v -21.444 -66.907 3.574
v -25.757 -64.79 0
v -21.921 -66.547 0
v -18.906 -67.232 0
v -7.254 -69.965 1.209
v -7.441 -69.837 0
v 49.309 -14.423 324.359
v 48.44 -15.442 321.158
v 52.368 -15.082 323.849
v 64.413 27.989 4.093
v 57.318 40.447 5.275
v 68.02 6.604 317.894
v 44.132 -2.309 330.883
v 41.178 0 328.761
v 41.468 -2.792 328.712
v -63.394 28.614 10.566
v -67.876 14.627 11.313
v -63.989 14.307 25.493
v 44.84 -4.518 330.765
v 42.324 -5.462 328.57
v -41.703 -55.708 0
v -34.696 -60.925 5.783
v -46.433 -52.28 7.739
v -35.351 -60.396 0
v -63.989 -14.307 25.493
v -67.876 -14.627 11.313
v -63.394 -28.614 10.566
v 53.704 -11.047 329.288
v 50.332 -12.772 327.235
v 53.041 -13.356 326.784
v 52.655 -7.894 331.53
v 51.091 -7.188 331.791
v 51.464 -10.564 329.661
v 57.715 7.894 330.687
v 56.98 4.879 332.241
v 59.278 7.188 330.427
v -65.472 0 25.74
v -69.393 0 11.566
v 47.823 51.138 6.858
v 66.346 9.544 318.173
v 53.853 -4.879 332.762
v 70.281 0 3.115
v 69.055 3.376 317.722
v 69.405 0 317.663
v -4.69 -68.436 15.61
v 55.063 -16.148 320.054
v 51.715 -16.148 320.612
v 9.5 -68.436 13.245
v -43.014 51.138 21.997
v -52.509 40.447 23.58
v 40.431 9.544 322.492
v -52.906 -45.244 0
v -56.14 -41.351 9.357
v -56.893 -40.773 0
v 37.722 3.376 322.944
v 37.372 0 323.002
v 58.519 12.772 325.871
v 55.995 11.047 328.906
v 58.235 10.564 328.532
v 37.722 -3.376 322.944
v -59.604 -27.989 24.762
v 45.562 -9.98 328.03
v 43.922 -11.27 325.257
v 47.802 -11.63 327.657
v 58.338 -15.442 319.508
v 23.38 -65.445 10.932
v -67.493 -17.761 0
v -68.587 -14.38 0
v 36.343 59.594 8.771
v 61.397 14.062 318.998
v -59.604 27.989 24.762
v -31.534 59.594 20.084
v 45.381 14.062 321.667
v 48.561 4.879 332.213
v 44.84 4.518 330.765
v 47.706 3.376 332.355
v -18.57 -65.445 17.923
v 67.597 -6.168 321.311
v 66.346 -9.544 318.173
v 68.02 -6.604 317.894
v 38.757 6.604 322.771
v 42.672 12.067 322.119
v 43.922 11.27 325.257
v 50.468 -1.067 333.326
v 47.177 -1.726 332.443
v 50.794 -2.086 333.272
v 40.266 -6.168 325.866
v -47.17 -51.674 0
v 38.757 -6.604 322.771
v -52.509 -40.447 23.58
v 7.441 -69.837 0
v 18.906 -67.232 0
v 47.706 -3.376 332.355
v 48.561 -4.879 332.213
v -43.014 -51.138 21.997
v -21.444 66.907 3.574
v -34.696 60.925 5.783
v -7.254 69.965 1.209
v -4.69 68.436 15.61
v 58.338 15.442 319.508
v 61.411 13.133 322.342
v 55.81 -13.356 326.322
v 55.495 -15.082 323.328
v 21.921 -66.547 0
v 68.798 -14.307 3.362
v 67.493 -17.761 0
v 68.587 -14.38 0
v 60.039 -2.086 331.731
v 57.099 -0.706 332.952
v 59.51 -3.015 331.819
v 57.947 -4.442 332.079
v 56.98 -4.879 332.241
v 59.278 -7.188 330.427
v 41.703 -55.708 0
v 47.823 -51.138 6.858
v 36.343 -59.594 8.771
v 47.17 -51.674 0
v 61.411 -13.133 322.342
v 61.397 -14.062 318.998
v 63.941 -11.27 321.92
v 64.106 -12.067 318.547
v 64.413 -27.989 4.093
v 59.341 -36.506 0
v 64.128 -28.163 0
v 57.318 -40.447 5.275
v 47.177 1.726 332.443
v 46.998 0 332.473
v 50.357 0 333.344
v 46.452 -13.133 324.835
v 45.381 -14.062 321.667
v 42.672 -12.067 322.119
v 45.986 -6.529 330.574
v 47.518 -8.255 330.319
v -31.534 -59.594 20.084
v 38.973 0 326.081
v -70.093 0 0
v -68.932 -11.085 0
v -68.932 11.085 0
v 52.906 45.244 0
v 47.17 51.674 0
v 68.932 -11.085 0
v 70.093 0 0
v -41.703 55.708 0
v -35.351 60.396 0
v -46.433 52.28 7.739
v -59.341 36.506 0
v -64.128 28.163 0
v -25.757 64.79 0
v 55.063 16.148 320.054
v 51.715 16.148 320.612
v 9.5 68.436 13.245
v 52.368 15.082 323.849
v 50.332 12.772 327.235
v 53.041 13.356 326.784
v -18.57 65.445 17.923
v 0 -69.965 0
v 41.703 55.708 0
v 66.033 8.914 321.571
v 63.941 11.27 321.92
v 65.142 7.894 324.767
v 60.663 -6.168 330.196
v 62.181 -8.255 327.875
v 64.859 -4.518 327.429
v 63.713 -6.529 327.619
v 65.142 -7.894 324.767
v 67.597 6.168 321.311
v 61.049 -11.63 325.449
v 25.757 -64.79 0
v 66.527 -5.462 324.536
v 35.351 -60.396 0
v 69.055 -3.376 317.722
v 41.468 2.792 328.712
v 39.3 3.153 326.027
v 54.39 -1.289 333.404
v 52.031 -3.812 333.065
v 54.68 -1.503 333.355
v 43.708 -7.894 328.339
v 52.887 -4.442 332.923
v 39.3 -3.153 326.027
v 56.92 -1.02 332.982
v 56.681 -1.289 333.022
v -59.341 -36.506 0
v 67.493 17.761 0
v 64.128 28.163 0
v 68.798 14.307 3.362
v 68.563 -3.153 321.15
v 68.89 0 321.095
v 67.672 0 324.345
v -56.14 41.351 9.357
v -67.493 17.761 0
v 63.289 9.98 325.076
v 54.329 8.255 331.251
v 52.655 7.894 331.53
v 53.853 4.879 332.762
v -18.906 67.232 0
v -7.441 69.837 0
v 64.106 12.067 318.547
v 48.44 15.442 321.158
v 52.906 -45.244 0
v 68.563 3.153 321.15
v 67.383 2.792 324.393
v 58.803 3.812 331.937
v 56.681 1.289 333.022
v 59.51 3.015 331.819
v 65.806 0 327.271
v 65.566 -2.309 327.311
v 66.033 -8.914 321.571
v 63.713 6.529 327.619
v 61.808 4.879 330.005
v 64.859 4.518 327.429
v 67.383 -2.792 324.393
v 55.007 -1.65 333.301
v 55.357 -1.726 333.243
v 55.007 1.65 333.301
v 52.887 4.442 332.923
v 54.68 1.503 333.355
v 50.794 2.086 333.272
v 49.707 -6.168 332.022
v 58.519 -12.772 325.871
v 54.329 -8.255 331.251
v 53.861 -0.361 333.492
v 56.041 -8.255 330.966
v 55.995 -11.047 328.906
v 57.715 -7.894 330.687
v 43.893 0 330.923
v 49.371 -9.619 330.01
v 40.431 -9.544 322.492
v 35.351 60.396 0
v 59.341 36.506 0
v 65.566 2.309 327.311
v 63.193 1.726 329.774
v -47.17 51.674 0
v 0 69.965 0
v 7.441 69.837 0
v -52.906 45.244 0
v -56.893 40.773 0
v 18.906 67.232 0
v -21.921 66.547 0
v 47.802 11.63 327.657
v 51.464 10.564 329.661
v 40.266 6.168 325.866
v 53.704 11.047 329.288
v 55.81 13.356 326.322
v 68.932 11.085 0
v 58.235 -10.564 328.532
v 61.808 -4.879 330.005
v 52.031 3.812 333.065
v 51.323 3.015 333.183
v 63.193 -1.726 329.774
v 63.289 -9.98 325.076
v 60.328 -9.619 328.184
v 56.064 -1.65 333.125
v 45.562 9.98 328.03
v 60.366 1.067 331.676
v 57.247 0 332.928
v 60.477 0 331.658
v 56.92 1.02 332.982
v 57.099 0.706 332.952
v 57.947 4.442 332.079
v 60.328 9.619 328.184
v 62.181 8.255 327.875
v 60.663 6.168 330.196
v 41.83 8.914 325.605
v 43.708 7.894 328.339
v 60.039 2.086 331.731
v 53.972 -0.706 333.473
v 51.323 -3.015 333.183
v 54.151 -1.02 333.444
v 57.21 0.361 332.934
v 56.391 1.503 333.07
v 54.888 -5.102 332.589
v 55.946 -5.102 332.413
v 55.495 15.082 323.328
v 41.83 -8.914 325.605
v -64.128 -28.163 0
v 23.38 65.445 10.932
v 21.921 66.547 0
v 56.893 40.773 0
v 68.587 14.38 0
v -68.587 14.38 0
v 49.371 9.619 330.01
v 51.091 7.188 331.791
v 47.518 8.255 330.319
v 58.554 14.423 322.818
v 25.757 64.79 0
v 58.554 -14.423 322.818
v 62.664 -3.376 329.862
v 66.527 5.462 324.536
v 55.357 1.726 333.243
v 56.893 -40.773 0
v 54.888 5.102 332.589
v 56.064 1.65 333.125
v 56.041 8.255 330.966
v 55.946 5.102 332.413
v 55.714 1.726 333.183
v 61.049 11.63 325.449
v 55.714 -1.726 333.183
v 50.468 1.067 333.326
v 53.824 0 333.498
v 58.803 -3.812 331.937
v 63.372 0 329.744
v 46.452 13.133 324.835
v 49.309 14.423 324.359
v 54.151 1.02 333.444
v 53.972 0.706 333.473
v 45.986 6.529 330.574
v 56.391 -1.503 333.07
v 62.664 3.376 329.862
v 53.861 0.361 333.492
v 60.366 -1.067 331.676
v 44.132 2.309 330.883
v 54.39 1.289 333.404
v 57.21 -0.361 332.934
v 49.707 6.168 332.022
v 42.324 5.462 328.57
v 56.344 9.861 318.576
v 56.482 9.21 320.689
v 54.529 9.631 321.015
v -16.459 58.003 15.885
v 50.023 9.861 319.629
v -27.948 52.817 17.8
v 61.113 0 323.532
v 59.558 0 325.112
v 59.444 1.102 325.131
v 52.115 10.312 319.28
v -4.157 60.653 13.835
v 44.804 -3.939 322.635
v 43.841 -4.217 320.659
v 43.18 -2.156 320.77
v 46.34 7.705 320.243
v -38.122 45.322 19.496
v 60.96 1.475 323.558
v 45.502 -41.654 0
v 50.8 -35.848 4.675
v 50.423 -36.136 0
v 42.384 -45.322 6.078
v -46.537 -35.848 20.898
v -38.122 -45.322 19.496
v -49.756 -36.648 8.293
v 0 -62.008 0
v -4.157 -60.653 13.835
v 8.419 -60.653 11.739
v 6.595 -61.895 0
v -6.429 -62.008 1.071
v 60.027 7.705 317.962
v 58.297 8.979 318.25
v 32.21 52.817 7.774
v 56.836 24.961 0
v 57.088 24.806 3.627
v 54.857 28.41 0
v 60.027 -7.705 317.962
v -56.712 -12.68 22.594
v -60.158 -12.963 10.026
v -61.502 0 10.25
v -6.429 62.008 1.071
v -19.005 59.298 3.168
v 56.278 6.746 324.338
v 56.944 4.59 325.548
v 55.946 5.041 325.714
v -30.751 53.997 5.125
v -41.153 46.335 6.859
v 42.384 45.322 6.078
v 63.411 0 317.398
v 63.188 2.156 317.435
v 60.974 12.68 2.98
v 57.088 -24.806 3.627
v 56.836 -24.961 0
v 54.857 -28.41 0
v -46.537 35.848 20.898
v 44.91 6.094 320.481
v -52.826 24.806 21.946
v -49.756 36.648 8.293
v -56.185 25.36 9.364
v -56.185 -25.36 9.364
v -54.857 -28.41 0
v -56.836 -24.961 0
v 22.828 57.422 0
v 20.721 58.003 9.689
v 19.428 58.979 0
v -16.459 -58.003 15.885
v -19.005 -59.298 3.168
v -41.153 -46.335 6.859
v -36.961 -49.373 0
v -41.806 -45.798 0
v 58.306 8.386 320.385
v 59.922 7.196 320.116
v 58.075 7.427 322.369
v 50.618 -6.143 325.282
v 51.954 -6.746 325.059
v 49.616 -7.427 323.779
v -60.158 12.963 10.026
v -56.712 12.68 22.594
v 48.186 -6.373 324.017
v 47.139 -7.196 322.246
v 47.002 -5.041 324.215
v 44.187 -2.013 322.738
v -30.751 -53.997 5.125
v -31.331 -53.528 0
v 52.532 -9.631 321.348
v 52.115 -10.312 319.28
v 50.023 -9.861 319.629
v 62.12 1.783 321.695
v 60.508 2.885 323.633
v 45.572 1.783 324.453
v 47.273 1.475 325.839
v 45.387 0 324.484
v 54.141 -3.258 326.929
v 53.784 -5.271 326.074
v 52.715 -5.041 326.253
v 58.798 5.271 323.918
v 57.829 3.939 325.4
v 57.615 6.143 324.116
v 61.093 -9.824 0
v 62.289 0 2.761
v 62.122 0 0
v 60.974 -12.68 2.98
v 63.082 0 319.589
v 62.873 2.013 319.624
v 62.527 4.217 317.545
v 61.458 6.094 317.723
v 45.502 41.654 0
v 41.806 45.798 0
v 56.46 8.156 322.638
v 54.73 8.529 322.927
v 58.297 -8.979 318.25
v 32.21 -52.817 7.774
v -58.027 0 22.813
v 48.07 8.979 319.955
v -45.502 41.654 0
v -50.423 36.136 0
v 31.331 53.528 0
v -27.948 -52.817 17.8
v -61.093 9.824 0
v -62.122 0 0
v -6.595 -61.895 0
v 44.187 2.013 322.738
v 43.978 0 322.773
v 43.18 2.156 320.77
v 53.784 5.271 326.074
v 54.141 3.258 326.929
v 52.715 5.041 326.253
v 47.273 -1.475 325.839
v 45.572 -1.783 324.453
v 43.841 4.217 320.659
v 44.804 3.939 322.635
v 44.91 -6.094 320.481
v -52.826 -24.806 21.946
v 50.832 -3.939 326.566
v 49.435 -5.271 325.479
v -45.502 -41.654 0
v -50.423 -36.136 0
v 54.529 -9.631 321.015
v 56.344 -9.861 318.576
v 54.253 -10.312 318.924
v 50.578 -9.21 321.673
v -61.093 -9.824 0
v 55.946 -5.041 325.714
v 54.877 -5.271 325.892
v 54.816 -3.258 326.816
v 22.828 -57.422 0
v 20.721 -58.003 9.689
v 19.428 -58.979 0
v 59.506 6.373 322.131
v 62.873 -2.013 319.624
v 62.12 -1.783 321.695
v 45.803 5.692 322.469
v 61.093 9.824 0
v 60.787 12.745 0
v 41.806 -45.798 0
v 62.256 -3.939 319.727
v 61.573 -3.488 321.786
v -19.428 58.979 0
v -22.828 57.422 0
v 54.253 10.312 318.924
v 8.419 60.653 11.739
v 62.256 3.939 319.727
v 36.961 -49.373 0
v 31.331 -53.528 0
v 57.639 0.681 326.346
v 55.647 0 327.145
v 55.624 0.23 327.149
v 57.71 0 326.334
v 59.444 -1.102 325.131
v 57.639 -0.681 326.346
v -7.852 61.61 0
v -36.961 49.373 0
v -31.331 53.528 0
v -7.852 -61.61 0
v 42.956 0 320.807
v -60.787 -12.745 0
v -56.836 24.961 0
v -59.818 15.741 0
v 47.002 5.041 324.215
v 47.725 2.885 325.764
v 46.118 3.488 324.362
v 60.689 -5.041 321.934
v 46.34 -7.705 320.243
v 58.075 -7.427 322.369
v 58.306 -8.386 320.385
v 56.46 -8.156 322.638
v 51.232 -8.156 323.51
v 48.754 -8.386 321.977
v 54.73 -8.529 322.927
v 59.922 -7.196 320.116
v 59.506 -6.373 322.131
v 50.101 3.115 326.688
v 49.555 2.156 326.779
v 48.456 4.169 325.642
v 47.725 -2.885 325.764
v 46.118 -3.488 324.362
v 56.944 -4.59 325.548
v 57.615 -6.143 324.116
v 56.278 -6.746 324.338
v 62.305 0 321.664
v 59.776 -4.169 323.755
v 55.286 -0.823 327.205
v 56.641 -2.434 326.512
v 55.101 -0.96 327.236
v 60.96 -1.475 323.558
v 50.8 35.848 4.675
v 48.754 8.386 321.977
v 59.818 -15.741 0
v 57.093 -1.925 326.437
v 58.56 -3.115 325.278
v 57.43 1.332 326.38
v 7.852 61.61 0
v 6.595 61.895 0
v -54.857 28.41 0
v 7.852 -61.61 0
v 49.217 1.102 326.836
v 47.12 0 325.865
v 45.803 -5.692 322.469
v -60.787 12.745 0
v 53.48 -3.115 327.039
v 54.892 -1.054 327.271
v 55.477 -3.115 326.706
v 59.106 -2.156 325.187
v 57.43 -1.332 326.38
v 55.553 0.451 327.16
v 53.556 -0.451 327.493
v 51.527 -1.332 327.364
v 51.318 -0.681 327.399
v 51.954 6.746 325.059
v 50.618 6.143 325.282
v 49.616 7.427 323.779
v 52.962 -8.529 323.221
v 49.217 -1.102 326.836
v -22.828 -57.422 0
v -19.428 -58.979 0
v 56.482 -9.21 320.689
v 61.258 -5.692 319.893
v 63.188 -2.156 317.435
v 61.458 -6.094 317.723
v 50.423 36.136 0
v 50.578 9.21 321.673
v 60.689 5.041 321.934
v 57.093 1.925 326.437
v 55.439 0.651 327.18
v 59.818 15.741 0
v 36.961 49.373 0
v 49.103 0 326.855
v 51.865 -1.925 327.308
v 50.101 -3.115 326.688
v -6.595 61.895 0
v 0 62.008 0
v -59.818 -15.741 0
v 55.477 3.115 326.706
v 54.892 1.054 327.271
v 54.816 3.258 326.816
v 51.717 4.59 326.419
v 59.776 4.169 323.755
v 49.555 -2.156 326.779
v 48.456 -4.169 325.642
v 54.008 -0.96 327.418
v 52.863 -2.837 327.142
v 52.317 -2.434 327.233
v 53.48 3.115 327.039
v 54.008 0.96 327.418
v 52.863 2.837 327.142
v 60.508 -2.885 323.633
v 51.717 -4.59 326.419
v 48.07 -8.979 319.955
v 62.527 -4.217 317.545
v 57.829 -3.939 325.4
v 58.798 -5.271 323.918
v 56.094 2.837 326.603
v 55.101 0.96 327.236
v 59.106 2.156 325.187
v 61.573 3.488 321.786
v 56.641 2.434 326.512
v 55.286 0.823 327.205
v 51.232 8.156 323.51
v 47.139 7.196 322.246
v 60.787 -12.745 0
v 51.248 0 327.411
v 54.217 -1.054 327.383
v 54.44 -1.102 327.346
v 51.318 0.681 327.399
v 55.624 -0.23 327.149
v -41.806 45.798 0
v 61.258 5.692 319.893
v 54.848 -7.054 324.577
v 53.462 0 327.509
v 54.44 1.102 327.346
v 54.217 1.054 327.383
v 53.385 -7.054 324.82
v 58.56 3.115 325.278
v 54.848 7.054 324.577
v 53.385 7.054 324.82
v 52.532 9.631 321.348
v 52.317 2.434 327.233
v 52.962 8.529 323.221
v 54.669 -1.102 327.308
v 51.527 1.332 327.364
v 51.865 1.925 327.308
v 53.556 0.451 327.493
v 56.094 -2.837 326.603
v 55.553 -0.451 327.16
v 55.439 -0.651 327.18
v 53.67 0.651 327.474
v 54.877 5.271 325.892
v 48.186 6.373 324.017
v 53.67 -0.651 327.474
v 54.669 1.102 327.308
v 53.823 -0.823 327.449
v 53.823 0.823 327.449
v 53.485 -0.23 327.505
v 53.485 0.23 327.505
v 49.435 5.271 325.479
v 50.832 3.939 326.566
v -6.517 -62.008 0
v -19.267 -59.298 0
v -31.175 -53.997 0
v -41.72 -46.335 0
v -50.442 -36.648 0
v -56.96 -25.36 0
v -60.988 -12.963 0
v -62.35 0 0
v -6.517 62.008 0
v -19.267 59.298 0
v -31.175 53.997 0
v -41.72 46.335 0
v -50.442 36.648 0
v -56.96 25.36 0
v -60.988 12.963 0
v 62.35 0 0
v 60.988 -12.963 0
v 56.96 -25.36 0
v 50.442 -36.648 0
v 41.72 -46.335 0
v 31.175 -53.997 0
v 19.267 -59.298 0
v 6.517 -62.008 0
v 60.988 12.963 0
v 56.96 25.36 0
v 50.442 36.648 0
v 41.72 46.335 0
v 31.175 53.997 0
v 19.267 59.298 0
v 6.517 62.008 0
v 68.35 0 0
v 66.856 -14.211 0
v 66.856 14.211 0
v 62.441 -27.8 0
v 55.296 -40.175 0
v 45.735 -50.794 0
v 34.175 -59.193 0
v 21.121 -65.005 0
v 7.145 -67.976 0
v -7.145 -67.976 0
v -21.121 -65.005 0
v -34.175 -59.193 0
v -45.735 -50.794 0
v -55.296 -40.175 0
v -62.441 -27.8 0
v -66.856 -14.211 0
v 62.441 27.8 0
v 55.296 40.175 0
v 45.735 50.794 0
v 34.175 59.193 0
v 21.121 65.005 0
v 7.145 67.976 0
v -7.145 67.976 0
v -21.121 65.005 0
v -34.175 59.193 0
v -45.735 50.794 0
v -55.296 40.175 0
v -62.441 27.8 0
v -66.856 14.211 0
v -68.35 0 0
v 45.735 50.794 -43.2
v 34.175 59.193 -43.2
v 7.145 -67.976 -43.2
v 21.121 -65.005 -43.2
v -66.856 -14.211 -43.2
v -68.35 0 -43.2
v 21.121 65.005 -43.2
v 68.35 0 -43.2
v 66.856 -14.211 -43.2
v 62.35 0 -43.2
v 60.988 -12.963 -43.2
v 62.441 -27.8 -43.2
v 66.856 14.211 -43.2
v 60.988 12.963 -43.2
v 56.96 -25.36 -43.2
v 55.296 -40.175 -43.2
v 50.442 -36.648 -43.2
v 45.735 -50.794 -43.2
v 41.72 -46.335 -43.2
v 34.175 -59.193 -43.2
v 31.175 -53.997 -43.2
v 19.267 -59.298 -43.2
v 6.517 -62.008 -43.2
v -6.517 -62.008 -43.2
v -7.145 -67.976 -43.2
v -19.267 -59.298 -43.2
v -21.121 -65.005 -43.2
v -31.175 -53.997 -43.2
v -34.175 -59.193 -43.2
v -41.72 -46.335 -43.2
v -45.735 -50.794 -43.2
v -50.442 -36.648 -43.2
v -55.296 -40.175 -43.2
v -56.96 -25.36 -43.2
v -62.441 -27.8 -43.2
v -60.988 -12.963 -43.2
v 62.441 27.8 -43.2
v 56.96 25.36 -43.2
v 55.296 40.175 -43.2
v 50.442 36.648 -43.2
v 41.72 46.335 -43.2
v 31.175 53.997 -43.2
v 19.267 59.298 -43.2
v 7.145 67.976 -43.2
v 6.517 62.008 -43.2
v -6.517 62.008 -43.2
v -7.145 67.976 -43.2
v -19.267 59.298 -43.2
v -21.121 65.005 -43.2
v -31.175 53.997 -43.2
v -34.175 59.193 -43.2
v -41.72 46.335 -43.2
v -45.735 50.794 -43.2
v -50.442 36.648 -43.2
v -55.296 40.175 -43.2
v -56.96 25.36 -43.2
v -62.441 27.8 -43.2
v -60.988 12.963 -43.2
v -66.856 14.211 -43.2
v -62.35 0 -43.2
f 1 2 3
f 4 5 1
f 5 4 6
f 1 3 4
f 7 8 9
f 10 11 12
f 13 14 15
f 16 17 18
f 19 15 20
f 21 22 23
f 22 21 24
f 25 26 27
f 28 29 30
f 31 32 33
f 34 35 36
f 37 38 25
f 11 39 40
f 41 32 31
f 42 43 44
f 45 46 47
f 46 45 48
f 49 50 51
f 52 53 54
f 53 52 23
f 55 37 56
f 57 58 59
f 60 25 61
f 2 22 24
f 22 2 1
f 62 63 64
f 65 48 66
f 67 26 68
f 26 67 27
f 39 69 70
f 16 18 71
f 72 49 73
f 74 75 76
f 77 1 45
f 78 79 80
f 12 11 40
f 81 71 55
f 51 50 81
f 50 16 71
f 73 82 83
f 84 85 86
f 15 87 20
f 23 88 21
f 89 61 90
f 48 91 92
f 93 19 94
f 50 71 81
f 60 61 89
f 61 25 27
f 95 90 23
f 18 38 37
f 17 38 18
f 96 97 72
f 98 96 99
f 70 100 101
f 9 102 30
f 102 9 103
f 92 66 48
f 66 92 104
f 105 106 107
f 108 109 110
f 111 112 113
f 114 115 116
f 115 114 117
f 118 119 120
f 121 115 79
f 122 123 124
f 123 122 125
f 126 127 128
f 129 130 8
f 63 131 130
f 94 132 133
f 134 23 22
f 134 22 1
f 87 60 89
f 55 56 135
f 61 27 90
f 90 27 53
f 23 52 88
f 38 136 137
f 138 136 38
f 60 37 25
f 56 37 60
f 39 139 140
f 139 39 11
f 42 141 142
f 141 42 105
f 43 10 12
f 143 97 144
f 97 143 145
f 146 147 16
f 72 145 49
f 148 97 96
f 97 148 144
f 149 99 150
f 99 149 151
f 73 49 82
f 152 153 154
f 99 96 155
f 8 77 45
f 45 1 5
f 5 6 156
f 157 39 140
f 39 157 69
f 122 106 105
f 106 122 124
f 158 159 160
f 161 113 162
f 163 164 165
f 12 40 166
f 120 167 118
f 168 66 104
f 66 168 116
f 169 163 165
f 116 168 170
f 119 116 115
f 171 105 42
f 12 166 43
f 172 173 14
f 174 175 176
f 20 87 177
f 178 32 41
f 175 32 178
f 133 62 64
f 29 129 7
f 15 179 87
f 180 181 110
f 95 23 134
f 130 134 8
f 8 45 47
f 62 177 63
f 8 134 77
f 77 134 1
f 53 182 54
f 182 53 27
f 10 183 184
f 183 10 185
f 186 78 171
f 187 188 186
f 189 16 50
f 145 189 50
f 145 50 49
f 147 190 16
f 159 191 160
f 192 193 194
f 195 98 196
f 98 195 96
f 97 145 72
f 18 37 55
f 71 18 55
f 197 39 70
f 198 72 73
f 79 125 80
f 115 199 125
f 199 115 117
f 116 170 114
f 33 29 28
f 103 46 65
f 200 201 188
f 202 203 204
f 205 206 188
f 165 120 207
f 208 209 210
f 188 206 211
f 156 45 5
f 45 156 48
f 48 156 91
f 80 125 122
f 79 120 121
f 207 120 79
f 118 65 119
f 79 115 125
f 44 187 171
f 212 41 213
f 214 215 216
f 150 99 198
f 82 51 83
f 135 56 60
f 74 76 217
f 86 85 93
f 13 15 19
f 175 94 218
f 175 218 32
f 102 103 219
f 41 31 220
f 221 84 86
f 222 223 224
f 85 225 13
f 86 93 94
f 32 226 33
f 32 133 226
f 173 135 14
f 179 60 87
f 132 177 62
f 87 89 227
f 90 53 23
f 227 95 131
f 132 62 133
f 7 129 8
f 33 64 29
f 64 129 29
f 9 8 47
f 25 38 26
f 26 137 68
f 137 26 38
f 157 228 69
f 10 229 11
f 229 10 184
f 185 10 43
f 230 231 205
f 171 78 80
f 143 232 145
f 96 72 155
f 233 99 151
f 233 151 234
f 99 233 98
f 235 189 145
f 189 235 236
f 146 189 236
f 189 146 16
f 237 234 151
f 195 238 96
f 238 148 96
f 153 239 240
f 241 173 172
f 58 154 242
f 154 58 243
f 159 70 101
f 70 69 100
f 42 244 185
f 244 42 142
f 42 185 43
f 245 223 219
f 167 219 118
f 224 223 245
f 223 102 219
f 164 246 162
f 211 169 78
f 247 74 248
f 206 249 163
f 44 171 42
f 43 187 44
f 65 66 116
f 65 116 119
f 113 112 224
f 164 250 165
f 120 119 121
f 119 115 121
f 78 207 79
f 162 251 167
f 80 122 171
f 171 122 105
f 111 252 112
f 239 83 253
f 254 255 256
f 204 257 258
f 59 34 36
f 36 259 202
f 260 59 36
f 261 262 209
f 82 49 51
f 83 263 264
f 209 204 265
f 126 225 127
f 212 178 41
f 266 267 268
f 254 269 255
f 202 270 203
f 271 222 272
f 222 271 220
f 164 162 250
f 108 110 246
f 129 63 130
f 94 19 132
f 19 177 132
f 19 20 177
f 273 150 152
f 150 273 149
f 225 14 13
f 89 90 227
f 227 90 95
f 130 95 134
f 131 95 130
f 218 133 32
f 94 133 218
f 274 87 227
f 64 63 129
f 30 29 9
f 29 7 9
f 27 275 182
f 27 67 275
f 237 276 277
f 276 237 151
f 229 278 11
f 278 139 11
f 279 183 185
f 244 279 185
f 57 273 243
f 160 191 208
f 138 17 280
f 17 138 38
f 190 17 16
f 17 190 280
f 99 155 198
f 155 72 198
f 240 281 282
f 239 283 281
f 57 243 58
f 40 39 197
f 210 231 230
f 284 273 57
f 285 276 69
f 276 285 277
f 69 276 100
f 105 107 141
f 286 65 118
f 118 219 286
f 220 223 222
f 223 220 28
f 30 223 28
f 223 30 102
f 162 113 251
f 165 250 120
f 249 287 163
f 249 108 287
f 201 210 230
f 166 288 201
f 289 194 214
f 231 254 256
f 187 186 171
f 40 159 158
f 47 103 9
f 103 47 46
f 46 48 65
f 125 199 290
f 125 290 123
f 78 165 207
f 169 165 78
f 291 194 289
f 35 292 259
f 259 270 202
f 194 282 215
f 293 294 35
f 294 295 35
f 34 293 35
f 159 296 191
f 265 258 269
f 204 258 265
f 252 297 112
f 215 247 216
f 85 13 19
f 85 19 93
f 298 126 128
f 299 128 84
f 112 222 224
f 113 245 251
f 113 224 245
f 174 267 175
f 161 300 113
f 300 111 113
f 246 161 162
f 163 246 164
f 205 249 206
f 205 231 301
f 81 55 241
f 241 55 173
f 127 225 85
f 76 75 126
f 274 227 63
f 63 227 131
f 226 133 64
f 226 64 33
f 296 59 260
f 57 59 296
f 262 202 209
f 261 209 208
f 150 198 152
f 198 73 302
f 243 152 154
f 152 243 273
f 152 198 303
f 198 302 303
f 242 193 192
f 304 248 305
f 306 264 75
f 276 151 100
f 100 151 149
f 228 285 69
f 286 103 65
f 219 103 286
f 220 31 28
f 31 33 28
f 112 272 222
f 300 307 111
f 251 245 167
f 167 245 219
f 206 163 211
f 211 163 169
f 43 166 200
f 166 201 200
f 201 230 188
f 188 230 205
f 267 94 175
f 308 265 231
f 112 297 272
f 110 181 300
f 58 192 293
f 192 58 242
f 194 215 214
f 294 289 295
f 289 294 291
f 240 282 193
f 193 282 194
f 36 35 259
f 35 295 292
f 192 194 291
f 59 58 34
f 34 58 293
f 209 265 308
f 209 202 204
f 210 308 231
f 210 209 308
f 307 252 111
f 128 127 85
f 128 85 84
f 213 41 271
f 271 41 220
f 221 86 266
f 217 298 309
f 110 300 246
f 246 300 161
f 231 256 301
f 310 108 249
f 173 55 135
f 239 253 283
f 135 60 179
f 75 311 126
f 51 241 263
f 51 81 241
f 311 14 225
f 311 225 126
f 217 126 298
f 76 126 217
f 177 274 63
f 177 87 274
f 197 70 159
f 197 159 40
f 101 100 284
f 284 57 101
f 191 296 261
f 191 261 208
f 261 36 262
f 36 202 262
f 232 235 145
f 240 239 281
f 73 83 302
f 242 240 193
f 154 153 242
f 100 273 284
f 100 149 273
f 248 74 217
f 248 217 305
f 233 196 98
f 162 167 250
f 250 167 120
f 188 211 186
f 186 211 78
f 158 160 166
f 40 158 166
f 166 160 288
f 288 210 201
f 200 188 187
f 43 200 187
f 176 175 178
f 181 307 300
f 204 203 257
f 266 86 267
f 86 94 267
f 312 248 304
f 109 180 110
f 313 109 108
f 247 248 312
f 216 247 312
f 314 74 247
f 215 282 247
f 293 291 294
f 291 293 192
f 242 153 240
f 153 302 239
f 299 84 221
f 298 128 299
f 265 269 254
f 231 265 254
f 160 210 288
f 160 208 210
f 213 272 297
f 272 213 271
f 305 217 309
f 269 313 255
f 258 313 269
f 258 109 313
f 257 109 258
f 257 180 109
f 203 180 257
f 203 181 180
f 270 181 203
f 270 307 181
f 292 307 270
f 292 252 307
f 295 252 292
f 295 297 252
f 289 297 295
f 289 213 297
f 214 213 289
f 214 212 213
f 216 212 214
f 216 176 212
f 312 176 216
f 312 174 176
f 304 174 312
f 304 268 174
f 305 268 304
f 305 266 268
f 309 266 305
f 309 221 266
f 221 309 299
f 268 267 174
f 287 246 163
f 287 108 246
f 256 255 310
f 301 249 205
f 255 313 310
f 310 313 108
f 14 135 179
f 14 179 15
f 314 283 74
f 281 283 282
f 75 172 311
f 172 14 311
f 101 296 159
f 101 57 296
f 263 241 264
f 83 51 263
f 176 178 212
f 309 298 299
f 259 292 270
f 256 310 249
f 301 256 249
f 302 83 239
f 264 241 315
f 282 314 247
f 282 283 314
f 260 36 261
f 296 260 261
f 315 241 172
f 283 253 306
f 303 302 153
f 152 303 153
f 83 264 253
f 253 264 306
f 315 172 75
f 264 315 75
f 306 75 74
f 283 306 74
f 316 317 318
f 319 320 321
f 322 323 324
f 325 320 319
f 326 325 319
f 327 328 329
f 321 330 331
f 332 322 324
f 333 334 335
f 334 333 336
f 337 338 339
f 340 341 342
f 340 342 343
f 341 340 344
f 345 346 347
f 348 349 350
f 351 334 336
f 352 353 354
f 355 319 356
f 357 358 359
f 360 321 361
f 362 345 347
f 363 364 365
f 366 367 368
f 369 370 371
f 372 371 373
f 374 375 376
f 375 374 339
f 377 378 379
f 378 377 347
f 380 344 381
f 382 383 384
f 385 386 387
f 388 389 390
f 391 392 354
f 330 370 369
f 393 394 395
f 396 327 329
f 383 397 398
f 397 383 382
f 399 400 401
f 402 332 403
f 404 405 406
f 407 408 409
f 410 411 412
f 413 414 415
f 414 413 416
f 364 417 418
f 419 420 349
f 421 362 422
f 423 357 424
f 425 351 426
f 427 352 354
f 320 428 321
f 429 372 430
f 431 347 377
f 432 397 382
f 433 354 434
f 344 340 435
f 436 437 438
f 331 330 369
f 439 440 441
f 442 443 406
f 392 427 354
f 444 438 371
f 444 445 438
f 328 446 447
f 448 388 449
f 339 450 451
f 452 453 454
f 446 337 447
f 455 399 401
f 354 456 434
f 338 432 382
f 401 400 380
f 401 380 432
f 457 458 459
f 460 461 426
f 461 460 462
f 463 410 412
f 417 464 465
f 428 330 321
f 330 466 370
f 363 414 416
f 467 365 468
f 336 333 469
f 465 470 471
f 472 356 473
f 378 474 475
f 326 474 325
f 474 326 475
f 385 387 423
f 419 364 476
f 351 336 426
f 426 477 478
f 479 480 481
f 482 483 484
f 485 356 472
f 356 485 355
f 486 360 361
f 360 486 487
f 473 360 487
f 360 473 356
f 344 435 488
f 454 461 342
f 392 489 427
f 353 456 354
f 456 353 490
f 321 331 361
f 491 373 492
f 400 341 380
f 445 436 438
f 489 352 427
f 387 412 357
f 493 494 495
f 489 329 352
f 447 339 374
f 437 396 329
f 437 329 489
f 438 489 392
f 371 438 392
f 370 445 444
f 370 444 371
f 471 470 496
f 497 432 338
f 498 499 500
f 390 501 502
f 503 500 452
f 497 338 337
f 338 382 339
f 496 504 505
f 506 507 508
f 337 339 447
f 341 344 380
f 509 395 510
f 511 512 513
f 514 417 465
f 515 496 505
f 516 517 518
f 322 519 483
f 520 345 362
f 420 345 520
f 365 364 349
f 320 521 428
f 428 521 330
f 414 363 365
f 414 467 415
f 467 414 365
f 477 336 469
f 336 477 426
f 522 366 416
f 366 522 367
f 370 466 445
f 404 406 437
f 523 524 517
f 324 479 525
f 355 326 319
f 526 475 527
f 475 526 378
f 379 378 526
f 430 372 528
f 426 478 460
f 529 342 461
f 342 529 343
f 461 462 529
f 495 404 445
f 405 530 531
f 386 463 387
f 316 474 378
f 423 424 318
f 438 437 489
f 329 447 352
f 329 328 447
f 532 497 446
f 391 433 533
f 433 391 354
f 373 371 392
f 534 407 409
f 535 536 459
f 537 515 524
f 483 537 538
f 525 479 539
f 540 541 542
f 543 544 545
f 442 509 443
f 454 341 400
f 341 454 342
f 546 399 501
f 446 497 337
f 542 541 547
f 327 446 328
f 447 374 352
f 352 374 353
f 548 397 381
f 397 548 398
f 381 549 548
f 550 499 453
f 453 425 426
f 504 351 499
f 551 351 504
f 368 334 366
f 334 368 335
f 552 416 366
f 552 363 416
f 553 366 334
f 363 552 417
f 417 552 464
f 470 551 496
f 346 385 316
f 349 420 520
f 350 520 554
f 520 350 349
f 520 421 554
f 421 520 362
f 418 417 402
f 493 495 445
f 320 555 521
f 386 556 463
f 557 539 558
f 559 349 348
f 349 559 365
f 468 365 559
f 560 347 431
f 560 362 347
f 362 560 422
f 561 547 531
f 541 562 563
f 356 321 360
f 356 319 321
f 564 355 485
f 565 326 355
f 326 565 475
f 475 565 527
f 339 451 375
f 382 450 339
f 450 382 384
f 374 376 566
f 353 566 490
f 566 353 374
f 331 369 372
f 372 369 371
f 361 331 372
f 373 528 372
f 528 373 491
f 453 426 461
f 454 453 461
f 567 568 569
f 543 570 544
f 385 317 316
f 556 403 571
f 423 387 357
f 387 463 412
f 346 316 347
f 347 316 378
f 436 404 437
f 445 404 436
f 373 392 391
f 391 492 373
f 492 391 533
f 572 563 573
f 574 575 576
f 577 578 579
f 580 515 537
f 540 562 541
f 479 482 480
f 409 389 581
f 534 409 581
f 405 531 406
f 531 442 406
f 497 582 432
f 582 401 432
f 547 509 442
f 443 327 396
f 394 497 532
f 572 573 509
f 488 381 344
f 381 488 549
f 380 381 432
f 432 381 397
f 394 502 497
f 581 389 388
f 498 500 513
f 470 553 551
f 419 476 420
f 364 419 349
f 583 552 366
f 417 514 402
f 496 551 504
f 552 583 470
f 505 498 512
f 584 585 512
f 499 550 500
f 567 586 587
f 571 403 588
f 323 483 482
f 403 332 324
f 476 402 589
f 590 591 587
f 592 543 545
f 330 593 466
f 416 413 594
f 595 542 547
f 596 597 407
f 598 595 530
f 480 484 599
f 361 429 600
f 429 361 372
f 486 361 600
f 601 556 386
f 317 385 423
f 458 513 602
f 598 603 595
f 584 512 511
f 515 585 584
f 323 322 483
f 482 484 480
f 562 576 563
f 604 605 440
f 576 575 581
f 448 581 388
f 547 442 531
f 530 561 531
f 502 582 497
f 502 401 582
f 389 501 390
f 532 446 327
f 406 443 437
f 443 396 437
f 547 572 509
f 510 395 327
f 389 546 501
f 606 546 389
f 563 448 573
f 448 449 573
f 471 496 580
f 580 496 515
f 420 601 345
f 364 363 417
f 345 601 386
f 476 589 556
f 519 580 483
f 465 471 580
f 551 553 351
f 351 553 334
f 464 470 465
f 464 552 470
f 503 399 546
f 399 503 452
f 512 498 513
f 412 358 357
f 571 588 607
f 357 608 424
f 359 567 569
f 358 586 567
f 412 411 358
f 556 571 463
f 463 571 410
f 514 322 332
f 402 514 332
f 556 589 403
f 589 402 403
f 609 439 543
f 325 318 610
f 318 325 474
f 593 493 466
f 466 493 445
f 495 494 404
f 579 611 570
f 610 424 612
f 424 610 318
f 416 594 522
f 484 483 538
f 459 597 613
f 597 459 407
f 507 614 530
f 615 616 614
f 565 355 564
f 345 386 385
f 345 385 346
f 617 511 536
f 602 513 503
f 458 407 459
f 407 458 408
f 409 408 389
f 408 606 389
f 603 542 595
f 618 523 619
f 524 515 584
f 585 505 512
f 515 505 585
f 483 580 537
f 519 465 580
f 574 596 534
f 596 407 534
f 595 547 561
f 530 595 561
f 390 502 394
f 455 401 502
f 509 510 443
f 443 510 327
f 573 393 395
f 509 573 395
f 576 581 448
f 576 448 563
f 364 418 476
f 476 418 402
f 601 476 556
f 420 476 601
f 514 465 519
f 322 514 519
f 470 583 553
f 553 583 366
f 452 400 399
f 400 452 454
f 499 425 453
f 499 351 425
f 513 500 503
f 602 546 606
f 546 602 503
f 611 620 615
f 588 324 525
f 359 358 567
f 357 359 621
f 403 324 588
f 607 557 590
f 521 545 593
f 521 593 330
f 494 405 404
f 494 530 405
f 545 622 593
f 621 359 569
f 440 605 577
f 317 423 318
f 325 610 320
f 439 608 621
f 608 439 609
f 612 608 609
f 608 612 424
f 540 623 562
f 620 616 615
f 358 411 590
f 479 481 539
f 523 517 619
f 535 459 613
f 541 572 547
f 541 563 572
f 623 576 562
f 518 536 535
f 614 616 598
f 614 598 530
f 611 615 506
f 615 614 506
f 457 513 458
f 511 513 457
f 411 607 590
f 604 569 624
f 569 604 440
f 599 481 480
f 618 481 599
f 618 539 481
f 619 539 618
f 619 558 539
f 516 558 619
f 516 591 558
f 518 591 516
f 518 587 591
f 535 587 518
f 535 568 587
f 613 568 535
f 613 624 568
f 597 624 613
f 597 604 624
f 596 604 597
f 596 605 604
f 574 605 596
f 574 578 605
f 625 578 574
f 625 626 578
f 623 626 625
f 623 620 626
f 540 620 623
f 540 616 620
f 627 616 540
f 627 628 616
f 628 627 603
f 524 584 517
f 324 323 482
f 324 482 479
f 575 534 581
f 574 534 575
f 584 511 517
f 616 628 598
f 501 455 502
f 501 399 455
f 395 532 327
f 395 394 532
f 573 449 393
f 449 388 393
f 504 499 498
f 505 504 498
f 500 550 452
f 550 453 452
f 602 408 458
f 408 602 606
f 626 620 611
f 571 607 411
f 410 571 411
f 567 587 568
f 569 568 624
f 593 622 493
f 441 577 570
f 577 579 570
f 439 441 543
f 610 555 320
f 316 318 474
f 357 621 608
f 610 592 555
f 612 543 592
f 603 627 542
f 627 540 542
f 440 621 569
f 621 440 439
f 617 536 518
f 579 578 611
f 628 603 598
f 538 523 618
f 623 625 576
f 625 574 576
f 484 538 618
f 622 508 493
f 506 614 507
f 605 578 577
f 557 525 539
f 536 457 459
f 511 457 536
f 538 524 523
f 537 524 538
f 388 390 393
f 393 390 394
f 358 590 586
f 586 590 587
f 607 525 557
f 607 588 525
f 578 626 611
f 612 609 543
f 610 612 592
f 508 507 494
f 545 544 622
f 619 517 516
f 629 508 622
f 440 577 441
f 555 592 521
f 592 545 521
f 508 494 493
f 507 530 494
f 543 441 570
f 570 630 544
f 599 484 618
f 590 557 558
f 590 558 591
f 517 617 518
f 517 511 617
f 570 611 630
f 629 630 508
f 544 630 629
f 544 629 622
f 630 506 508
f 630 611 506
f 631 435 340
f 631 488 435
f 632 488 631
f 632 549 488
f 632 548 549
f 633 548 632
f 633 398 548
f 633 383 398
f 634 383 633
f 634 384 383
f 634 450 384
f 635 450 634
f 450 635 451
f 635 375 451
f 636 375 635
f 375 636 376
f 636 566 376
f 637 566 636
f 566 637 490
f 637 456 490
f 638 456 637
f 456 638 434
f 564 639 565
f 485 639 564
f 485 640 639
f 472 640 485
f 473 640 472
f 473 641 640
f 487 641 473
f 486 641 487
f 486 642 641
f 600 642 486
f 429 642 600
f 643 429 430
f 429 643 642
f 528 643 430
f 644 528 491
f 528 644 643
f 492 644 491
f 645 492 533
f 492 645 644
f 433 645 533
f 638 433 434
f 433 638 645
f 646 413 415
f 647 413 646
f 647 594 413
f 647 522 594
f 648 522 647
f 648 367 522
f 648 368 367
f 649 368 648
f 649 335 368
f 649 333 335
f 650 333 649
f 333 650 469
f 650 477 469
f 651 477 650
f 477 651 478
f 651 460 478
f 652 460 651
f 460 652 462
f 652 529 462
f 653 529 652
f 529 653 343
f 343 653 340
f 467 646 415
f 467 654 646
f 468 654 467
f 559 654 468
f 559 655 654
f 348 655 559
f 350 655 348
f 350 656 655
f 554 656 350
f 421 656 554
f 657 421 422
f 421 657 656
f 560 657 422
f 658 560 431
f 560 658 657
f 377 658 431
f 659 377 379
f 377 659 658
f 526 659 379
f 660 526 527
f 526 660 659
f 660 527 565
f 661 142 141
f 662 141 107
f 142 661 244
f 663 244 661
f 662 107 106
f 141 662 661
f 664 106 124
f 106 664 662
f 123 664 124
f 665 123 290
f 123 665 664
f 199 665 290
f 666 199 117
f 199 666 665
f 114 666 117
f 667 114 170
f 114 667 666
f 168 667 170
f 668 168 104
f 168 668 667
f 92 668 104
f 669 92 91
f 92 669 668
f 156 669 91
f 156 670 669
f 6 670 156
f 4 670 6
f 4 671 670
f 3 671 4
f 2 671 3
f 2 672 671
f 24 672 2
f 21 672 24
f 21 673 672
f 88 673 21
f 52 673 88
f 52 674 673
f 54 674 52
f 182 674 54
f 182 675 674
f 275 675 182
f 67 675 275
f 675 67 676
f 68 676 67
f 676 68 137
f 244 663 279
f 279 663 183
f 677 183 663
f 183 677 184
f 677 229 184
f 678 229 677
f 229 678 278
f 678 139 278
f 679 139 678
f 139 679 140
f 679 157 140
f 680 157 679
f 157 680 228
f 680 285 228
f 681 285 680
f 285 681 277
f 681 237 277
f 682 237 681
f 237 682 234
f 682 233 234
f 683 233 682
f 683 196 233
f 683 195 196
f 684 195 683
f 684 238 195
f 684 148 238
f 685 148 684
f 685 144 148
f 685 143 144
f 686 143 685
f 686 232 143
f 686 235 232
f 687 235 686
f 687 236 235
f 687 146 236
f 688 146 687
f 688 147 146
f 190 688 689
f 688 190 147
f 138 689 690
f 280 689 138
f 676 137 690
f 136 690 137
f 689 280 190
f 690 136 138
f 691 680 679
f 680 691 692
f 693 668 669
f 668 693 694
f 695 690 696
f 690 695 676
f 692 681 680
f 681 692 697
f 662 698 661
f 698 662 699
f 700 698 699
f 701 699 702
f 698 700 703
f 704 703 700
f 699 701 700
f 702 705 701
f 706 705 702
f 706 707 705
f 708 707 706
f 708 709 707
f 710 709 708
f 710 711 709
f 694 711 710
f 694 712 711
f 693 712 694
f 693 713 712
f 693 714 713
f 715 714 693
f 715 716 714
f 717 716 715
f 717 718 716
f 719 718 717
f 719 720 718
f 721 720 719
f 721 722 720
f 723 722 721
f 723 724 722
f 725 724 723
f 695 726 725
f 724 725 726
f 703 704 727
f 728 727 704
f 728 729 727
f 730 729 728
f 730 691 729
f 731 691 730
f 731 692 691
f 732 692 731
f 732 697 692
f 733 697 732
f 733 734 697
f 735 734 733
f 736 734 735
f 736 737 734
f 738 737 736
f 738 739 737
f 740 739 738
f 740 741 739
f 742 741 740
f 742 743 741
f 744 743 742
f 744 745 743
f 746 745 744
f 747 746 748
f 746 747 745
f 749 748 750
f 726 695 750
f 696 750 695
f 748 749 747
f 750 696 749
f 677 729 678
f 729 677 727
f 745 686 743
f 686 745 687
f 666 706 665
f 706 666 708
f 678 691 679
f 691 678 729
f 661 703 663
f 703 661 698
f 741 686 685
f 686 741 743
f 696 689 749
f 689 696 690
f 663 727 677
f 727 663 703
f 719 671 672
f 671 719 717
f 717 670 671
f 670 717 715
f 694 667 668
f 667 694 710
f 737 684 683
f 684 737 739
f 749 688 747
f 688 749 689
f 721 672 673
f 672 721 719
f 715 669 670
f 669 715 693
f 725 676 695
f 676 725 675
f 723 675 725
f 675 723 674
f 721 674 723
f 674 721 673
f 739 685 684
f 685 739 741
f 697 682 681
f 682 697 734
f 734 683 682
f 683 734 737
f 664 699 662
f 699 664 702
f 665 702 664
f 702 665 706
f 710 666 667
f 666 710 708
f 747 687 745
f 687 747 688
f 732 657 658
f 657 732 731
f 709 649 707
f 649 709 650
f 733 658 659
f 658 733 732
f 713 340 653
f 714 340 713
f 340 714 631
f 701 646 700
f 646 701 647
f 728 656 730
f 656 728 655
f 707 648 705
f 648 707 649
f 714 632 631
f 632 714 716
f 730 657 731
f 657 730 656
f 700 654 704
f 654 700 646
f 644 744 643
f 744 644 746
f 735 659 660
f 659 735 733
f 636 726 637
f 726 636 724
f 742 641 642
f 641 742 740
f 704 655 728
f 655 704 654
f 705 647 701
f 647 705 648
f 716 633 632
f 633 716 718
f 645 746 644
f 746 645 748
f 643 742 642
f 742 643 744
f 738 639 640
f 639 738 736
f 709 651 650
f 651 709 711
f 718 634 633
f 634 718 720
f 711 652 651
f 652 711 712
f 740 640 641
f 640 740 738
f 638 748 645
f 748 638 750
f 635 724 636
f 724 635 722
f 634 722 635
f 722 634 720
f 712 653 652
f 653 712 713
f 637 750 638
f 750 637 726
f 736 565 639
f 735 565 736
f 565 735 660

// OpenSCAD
union() {
	union() {
		intersection() {
			translate(v = [0, 0, 1154.5000000000]) {
				cube(center = true, size = 2309.0000000000);
			}
			rotate(a = [0, 9.462322208025617, 0]) {
				difference() {
					hull() {
						translate(v = [0, 0, 321.3000000000]) {
							sphere(r = 16.6000000000);
						}
						sphere(r = 70.3500000000);
					}
					hull() {
						translate(v = [0, 0, 321.3000000000]) {
							sphere(r = 10.6000000000);
						}
						sphere(r = 62.3500000000);
					}
				}
			}
		}
		intersection() {
			difference() {
				cylinder(center = true, d = 136.7000000000, h = 86.4000000000);
				cylinder(center = true, d = 124.7000000000, h = 129.6000000000);
			}
			translate(v = [0, 0, -1154.5000000000]) {
				cube(center = true, size = 2309.0000000000);
			}
		}
	}
}
